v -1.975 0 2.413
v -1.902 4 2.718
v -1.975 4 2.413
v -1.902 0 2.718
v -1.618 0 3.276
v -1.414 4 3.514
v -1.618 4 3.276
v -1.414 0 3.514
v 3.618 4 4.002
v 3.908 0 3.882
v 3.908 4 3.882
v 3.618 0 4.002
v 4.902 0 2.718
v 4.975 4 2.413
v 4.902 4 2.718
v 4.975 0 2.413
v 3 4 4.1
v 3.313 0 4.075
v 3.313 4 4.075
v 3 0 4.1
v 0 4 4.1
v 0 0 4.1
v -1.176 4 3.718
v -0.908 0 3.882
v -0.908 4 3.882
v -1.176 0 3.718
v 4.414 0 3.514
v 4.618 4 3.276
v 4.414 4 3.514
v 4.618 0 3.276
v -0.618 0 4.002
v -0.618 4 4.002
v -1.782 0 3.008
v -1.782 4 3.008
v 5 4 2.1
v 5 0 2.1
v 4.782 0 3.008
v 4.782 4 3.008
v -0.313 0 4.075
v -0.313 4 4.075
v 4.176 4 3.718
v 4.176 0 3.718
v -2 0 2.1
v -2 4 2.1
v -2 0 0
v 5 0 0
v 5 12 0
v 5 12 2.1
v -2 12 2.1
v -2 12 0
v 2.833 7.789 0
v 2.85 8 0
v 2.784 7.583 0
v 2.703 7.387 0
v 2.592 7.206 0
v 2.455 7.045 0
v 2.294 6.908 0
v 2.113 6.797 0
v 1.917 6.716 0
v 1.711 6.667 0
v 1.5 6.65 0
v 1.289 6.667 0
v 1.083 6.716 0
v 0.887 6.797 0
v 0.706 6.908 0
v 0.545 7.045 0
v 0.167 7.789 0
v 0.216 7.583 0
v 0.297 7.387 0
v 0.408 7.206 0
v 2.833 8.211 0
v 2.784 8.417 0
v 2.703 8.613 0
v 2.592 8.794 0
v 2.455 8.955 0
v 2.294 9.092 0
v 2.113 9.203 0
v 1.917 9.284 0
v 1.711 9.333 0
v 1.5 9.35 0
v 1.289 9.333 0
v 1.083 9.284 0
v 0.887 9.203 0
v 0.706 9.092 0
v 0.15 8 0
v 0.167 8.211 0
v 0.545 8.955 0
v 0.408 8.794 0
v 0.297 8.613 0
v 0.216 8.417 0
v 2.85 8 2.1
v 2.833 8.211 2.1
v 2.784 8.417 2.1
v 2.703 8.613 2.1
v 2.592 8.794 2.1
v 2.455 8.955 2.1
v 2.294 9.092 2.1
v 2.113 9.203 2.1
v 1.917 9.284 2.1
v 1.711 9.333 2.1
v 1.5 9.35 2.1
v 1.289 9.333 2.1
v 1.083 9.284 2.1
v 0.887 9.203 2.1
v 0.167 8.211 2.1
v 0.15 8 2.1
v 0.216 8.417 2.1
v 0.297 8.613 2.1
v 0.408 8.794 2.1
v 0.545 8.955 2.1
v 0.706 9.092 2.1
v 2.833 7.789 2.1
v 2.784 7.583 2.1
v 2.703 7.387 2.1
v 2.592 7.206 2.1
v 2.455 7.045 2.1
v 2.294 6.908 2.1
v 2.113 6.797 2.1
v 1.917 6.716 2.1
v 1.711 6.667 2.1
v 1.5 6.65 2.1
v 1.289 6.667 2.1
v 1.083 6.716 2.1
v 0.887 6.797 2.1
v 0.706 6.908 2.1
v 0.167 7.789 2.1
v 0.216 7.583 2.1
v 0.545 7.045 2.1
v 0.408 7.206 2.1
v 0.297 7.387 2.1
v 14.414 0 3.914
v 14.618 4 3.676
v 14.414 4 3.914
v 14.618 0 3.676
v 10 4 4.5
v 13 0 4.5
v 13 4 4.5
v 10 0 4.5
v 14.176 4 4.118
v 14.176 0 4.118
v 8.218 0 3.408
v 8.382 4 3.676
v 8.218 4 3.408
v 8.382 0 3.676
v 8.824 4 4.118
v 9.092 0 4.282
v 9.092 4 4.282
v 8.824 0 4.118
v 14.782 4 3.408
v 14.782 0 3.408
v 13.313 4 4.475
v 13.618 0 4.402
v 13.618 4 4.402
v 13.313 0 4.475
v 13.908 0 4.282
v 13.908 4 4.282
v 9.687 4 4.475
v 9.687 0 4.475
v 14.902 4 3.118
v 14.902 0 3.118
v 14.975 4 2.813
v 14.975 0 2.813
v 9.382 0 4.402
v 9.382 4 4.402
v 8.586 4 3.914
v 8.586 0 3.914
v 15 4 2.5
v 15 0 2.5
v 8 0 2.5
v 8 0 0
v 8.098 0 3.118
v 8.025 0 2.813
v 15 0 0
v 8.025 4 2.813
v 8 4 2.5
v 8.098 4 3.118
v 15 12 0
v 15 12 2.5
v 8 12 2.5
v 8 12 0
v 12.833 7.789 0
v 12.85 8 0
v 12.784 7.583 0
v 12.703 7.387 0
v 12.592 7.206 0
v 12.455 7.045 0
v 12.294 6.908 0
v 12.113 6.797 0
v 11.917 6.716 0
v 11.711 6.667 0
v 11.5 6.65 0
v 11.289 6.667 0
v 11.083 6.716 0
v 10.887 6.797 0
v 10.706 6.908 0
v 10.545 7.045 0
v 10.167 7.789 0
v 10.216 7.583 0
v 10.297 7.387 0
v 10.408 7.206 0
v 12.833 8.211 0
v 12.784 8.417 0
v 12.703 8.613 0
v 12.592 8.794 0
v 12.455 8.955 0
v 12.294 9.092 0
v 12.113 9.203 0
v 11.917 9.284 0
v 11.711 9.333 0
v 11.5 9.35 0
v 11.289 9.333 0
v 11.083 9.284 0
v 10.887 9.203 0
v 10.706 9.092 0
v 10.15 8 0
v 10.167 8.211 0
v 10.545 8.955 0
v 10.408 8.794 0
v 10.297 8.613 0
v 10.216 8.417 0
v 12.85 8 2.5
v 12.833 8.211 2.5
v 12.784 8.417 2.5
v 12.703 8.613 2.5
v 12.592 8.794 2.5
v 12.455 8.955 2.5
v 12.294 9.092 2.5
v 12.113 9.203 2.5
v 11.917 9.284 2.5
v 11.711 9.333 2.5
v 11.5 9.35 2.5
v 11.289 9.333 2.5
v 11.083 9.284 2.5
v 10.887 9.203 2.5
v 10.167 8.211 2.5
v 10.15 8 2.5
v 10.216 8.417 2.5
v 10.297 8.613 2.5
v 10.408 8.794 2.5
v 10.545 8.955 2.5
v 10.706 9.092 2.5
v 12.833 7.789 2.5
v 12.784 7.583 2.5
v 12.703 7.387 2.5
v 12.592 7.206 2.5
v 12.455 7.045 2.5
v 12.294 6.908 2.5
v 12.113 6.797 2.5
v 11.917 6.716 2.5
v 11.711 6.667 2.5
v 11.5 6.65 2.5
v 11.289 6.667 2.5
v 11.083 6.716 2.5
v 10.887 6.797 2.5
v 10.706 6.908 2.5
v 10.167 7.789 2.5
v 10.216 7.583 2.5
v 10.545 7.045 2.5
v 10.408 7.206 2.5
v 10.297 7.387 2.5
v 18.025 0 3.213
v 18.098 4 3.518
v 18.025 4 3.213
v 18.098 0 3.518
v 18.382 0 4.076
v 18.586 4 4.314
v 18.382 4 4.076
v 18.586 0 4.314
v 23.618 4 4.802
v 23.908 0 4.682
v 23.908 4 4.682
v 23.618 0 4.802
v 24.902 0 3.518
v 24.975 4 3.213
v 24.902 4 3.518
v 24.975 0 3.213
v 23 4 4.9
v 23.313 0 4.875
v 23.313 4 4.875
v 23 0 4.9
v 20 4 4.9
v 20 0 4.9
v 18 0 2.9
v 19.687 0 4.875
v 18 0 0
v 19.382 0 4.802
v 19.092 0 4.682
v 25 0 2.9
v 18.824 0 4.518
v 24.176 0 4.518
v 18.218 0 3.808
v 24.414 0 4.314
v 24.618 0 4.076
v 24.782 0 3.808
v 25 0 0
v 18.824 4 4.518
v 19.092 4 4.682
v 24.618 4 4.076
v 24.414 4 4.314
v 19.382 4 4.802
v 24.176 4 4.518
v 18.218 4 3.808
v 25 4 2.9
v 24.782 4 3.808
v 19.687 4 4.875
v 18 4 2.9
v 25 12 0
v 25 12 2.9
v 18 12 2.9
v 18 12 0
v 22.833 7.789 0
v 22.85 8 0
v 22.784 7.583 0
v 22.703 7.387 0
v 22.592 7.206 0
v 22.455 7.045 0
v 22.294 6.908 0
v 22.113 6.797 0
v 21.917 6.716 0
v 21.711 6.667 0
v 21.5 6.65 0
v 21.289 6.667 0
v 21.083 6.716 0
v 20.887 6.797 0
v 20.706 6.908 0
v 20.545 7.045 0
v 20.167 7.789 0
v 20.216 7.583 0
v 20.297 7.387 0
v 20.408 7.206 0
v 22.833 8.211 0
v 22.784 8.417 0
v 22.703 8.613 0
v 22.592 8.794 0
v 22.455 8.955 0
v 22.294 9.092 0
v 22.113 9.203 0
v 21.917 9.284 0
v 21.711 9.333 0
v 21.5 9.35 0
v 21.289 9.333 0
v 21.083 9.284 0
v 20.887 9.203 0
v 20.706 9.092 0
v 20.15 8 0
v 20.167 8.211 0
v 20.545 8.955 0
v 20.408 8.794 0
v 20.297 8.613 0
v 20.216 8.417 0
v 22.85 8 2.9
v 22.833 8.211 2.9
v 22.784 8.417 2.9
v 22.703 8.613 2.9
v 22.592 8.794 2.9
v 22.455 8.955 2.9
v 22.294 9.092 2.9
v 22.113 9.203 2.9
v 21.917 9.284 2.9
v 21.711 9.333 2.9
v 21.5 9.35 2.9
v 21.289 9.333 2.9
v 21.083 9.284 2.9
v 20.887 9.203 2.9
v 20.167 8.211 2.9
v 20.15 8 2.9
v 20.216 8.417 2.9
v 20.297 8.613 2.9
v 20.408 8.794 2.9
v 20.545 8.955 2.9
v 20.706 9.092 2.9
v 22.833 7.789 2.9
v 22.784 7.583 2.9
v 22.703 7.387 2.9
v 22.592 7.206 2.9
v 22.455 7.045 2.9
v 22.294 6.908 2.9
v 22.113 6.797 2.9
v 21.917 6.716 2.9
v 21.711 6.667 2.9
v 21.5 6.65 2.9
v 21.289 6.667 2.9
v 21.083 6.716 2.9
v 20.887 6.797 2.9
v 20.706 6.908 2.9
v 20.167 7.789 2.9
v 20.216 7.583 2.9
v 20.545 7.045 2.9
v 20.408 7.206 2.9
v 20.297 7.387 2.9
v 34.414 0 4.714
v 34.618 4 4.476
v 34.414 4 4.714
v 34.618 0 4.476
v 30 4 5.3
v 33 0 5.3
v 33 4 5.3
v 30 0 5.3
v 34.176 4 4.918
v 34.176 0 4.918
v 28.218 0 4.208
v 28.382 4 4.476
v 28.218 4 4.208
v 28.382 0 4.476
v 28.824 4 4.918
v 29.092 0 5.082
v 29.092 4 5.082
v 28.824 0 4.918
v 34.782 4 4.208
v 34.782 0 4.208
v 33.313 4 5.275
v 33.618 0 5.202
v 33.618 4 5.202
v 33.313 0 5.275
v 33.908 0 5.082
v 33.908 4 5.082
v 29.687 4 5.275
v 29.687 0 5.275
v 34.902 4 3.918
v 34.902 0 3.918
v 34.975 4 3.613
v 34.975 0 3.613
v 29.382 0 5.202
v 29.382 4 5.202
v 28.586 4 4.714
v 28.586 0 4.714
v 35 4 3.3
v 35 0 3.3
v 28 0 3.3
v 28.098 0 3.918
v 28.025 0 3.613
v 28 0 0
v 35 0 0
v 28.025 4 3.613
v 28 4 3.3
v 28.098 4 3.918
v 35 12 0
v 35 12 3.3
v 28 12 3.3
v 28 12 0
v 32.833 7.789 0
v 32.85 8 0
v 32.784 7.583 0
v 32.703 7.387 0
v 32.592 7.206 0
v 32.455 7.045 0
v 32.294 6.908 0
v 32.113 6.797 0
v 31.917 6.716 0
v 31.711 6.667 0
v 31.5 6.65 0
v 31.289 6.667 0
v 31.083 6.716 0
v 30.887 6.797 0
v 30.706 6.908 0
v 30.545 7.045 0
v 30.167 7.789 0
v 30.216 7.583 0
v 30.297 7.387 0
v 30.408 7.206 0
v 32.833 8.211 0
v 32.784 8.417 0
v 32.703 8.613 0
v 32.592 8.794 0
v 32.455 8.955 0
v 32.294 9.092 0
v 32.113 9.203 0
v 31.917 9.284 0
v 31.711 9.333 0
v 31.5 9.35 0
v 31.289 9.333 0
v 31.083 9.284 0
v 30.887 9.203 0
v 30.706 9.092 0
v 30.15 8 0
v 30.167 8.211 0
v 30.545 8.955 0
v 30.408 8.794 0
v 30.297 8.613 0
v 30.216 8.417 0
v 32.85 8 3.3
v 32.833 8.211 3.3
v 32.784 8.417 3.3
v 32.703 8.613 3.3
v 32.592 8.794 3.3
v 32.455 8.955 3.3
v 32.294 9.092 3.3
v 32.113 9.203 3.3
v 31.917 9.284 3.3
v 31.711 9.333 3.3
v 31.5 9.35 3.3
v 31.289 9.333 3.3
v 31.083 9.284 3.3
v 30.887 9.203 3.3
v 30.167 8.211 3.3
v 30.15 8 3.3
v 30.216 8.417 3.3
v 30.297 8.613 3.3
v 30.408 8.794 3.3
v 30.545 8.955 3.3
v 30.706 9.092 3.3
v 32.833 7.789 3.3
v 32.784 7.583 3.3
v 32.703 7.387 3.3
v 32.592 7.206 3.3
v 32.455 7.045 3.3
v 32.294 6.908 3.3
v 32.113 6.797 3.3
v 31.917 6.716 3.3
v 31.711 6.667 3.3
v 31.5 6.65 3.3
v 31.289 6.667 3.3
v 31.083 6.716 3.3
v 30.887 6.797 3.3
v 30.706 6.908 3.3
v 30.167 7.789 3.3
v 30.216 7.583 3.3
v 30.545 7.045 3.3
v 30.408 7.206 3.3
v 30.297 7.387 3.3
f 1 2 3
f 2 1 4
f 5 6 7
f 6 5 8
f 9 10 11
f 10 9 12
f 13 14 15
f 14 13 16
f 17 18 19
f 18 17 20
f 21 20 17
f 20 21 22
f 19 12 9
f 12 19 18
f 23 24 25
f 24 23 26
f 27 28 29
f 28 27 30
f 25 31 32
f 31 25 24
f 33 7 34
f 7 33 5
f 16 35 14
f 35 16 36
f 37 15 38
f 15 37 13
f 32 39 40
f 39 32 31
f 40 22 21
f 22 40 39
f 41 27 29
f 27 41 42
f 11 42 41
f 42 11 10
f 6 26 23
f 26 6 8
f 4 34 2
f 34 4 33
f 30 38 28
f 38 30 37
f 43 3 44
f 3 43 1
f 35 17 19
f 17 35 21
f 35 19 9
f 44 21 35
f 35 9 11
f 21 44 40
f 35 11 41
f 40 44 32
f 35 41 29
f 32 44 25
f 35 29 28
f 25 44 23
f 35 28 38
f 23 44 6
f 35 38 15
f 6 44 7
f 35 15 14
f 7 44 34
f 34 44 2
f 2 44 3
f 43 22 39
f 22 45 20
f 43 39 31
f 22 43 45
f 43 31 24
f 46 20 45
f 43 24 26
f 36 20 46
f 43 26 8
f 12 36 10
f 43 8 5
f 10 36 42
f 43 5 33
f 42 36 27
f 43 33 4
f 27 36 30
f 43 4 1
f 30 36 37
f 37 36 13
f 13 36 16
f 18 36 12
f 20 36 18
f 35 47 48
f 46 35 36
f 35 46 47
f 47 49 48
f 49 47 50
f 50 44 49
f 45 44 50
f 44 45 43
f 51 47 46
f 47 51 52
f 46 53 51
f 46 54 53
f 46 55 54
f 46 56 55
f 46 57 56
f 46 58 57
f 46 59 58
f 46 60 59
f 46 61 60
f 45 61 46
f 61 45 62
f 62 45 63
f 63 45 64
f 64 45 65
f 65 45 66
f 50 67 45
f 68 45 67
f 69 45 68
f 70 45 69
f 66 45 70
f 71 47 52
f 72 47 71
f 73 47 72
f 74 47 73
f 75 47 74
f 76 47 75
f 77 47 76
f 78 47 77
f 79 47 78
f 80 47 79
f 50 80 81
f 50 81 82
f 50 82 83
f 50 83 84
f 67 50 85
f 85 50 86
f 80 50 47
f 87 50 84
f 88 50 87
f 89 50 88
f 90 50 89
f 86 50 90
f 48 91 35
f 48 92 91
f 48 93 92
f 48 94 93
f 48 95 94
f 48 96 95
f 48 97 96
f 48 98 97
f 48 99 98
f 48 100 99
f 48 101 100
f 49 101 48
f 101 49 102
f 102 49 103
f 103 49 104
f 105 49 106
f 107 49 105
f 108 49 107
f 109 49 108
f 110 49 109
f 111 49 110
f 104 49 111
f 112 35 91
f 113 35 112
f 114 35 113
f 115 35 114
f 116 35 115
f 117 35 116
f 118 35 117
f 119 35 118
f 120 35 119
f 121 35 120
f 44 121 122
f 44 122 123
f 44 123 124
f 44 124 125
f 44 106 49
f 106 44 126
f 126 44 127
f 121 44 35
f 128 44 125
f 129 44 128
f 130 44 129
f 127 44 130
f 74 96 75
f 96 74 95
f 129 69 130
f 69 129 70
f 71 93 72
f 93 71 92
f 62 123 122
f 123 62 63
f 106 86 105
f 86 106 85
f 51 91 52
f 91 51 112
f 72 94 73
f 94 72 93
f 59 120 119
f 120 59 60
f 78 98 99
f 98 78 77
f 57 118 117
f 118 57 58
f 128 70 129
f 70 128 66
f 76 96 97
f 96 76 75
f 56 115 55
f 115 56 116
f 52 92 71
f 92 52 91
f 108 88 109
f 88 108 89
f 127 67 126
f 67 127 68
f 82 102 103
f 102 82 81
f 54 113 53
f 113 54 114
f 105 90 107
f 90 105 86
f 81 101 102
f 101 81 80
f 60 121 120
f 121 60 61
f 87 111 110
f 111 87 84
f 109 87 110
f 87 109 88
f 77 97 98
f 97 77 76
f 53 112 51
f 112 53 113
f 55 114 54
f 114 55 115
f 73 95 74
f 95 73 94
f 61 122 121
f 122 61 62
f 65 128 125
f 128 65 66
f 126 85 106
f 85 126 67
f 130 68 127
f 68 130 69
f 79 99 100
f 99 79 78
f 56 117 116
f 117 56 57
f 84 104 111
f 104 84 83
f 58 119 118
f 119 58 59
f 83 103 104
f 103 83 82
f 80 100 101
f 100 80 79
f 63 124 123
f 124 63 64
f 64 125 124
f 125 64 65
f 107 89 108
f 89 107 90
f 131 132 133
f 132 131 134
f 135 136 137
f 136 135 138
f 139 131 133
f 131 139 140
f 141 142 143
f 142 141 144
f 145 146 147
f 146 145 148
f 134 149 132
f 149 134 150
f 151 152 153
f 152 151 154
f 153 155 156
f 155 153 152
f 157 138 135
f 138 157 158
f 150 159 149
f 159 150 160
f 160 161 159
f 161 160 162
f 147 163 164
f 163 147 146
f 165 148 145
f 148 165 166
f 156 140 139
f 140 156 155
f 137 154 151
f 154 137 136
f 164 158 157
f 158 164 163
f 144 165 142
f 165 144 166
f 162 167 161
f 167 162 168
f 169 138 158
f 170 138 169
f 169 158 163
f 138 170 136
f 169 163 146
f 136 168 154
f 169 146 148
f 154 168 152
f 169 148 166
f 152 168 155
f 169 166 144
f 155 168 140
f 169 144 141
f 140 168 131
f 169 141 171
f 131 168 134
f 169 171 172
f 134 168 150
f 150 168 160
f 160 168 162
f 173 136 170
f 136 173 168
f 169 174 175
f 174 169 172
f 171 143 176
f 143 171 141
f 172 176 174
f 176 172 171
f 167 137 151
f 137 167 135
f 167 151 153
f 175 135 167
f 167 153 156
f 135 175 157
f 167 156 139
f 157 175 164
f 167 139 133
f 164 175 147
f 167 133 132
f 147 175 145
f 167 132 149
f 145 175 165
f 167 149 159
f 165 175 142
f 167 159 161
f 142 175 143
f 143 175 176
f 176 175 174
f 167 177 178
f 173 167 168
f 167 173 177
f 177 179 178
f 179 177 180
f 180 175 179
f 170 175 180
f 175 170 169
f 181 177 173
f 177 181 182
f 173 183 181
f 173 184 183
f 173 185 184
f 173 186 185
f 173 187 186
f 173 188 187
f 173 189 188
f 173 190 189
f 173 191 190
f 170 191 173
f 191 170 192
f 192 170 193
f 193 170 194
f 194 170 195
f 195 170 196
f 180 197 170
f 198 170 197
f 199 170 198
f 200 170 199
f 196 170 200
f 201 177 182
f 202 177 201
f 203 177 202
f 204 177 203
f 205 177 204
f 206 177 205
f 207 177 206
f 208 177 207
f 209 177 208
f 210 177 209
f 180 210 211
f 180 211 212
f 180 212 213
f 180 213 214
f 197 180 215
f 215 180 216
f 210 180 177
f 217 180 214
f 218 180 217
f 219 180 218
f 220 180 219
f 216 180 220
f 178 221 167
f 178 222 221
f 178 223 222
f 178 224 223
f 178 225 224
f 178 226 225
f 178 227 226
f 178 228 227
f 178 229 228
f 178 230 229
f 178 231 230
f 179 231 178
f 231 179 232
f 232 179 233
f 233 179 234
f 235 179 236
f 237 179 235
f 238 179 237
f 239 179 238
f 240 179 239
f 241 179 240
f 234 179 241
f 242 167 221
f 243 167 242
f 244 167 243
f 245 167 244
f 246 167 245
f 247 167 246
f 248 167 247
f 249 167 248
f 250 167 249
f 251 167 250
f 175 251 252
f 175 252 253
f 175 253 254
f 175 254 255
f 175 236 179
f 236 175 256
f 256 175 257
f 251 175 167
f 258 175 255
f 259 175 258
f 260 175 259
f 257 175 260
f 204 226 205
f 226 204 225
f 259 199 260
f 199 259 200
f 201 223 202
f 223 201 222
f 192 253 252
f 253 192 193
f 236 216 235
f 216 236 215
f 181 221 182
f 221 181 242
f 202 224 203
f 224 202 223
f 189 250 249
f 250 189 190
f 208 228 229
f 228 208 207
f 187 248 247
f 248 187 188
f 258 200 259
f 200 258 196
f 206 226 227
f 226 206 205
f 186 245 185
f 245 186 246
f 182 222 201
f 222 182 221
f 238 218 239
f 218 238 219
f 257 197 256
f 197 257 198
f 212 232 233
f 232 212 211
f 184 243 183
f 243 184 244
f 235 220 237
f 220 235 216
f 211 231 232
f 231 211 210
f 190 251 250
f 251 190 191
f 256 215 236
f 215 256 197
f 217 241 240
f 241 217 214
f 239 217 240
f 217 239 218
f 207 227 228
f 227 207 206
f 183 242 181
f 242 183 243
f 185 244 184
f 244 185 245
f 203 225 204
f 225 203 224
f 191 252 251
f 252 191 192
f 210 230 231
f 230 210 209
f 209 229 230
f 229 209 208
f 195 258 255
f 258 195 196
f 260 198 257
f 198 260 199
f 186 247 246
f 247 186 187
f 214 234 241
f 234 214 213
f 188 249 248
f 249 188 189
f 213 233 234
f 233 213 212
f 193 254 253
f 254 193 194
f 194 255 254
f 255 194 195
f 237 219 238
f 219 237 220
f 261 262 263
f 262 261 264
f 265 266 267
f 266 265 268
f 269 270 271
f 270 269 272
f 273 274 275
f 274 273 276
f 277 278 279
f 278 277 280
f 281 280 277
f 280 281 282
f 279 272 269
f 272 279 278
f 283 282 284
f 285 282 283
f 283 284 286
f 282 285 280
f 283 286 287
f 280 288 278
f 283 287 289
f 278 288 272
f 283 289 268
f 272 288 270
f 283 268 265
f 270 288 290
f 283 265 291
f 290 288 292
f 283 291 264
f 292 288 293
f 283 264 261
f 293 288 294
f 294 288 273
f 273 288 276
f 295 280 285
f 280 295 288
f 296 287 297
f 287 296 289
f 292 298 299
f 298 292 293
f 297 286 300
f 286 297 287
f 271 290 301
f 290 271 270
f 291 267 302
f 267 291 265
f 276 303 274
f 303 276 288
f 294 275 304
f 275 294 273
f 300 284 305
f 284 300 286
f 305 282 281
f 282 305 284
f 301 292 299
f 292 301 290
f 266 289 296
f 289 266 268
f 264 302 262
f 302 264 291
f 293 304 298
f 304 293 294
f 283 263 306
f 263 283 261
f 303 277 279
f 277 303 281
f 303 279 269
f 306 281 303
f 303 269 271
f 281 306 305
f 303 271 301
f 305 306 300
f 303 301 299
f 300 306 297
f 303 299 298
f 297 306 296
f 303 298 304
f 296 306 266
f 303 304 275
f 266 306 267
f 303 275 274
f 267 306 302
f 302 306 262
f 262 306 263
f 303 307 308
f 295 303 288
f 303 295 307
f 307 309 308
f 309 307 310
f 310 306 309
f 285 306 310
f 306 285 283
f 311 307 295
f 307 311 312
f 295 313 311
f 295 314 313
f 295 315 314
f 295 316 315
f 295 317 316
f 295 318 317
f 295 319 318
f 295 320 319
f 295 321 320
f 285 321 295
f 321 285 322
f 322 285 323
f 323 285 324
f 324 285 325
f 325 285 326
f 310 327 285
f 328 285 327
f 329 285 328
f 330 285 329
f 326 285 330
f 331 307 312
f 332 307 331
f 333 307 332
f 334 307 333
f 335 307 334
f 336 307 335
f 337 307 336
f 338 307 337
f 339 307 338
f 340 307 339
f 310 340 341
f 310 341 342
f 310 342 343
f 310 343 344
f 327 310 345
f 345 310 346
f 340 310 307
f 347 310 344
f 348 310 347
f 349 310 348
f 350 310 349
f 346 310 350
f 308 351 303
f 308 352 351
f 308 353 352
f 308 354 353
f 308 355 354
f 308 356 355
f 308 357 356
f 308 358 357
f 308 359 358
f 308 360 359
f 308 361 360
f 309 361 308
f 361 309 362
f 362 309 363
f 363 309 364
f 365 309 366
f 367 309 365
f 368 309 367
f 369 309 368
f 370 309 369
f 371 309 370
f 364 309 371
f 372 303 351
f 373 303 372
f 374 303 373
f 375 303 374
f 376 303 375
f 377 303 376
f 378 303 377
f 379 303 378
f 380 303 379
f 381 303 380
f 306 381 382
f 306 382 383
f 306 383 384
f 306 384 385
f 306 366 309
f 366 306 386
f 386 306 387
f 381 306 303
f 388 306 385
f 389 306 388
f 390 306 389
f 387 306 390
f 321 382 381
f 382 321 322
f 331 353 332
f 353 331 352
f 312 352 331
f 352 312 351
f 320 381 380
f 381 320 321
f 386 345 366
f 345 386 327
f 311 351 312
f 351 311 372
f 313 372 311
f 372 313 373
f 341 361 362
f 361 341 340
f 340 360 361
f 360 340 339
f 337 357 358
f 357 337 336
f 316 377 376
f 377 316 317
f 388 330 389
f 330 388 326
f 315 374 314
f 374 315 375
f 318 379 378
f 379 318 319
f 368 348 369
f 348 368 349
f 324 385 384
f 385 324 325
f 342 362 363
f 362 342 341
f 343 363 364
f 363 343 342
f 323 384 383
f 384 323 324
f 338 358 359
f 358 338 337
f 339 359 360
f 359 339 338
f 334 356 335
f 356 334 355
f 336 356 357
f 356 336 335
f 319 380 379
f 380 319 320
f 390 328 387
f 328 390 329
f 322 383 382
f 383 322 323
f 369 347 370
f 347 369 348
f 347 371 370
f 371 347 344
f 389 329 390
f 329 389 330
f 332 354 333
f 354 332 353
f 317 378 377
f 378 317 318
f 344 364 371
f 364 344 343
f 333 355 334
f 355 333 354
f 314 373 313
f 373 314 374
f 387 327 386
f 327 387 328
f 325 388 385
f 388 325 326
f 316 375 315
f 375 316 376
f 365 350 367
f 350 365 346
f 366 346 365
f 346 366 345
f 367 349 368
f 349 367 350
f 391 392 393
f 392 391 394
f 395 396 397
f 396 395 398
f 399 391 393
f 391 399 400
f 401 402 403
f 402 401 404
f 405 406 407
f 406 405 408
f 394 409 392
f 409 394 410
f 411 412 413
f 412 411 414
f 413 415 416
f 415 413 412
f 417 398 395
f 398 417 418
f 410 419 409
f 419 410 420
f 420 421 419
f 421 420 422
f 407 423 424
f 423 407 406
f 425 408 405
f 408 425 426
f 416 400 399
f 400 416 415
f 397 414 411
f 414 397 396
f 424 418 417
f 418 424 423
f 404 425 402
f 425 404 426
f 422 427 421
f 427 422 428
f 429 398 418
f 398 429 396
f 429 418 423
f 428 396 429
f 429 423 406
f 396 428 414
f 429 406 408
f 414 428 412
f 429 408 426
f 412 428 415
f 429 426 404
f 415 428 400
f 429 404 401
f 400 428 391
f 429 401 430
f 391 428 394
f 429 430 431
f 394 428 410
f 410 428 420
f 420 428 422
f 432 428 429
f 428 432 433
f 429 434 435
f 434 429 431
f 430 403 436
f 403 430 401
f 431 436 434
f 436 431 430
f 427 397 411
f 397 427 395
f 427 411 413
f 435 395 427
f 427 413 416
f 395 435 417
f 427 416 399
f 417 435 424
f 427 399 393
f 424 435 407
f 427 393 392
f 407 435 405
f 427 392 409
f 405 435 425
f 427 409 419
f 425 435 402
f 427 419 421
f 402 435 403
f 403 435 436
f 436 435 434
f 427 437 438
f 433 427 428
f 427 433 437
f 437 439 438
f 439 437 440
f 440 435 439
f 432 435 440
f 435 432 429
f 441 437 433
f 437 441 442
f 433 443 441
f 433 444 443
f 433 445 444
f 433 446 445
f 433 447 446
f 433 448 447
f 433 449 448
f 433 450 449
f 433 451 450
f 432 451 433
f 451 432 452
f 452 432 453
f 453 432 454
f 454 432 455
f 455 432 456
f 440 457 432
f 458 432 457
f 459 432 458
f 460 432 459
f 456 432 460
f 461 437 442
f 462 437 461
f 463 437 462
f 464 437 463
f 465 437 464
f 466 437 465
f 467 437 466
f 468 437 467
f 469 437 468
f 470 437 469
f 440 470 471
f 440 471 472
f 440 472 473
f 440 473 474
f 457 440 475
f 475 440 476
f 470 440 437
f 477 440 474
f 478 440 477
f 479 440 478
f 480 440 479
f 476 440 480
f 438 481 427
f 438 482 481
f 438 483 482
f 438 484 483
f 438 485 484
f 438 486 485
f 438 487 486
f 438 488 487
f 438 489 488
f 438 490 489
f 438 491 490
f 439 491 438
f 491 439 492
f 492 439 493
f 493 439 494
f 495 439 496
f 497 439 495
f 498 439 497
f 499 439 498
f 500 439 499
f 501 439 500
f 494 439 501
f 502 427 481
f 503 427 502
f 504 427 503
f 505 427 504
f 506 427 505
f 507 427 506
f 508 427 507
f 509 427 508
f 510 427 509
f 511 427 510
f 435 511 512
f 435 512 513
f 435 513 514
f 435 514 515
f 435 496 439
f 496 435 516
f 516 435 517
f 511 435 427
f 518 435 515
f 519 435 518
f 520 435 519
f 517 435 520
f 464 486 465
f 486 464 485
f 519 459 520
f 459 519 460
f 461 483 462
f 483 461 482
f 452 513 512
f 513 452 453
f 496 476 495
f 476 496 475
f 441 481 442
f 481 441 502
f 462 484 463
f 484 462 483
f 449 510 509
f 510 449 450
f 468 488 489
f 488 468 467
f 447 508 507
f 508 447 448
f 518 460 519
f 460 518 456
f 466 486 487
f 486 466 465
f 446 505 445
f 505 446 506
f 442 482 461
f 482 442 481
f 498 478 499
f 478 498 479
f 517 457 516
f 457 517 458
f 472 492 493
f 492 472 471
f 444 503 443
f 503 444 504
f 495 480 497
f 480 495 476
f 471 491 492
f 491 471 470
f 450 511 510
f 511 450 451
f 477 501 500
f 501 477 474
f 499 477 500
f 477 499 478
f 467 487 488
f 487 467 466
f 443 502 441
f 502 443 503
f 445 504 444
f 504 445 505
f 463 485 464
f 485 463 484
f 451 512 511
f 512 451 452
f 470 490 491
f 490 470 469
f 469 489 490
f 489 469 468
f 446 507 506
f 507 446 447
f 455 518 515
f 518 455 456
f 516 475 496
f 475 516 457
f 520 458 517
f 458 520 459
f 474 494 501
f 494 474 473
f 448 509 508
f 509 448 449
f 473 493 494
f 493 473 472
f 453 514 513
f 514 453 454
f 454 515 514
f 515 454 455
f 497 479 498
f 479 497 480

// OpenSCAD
$fn=40;

rotate([-90,0,0]) for (i=[0:3]) {
   translate([i*10,-2.1-i*0.4,0]) zstop(height=2.1+i*0.4);
}

module zstop(height=2) {
   difference() {
      union() {
         hull() { 
            cylinder(r=2,h=4);
            translate([3,0,0]) cylinder(r=2,h=4);
         }
         translate([-2,0,0]) cube([7,height,12]);
      }
      translate([1.5,6,8]) rotate([90,0,0]) cylinder(d=2.7,h=10);
   }
}
